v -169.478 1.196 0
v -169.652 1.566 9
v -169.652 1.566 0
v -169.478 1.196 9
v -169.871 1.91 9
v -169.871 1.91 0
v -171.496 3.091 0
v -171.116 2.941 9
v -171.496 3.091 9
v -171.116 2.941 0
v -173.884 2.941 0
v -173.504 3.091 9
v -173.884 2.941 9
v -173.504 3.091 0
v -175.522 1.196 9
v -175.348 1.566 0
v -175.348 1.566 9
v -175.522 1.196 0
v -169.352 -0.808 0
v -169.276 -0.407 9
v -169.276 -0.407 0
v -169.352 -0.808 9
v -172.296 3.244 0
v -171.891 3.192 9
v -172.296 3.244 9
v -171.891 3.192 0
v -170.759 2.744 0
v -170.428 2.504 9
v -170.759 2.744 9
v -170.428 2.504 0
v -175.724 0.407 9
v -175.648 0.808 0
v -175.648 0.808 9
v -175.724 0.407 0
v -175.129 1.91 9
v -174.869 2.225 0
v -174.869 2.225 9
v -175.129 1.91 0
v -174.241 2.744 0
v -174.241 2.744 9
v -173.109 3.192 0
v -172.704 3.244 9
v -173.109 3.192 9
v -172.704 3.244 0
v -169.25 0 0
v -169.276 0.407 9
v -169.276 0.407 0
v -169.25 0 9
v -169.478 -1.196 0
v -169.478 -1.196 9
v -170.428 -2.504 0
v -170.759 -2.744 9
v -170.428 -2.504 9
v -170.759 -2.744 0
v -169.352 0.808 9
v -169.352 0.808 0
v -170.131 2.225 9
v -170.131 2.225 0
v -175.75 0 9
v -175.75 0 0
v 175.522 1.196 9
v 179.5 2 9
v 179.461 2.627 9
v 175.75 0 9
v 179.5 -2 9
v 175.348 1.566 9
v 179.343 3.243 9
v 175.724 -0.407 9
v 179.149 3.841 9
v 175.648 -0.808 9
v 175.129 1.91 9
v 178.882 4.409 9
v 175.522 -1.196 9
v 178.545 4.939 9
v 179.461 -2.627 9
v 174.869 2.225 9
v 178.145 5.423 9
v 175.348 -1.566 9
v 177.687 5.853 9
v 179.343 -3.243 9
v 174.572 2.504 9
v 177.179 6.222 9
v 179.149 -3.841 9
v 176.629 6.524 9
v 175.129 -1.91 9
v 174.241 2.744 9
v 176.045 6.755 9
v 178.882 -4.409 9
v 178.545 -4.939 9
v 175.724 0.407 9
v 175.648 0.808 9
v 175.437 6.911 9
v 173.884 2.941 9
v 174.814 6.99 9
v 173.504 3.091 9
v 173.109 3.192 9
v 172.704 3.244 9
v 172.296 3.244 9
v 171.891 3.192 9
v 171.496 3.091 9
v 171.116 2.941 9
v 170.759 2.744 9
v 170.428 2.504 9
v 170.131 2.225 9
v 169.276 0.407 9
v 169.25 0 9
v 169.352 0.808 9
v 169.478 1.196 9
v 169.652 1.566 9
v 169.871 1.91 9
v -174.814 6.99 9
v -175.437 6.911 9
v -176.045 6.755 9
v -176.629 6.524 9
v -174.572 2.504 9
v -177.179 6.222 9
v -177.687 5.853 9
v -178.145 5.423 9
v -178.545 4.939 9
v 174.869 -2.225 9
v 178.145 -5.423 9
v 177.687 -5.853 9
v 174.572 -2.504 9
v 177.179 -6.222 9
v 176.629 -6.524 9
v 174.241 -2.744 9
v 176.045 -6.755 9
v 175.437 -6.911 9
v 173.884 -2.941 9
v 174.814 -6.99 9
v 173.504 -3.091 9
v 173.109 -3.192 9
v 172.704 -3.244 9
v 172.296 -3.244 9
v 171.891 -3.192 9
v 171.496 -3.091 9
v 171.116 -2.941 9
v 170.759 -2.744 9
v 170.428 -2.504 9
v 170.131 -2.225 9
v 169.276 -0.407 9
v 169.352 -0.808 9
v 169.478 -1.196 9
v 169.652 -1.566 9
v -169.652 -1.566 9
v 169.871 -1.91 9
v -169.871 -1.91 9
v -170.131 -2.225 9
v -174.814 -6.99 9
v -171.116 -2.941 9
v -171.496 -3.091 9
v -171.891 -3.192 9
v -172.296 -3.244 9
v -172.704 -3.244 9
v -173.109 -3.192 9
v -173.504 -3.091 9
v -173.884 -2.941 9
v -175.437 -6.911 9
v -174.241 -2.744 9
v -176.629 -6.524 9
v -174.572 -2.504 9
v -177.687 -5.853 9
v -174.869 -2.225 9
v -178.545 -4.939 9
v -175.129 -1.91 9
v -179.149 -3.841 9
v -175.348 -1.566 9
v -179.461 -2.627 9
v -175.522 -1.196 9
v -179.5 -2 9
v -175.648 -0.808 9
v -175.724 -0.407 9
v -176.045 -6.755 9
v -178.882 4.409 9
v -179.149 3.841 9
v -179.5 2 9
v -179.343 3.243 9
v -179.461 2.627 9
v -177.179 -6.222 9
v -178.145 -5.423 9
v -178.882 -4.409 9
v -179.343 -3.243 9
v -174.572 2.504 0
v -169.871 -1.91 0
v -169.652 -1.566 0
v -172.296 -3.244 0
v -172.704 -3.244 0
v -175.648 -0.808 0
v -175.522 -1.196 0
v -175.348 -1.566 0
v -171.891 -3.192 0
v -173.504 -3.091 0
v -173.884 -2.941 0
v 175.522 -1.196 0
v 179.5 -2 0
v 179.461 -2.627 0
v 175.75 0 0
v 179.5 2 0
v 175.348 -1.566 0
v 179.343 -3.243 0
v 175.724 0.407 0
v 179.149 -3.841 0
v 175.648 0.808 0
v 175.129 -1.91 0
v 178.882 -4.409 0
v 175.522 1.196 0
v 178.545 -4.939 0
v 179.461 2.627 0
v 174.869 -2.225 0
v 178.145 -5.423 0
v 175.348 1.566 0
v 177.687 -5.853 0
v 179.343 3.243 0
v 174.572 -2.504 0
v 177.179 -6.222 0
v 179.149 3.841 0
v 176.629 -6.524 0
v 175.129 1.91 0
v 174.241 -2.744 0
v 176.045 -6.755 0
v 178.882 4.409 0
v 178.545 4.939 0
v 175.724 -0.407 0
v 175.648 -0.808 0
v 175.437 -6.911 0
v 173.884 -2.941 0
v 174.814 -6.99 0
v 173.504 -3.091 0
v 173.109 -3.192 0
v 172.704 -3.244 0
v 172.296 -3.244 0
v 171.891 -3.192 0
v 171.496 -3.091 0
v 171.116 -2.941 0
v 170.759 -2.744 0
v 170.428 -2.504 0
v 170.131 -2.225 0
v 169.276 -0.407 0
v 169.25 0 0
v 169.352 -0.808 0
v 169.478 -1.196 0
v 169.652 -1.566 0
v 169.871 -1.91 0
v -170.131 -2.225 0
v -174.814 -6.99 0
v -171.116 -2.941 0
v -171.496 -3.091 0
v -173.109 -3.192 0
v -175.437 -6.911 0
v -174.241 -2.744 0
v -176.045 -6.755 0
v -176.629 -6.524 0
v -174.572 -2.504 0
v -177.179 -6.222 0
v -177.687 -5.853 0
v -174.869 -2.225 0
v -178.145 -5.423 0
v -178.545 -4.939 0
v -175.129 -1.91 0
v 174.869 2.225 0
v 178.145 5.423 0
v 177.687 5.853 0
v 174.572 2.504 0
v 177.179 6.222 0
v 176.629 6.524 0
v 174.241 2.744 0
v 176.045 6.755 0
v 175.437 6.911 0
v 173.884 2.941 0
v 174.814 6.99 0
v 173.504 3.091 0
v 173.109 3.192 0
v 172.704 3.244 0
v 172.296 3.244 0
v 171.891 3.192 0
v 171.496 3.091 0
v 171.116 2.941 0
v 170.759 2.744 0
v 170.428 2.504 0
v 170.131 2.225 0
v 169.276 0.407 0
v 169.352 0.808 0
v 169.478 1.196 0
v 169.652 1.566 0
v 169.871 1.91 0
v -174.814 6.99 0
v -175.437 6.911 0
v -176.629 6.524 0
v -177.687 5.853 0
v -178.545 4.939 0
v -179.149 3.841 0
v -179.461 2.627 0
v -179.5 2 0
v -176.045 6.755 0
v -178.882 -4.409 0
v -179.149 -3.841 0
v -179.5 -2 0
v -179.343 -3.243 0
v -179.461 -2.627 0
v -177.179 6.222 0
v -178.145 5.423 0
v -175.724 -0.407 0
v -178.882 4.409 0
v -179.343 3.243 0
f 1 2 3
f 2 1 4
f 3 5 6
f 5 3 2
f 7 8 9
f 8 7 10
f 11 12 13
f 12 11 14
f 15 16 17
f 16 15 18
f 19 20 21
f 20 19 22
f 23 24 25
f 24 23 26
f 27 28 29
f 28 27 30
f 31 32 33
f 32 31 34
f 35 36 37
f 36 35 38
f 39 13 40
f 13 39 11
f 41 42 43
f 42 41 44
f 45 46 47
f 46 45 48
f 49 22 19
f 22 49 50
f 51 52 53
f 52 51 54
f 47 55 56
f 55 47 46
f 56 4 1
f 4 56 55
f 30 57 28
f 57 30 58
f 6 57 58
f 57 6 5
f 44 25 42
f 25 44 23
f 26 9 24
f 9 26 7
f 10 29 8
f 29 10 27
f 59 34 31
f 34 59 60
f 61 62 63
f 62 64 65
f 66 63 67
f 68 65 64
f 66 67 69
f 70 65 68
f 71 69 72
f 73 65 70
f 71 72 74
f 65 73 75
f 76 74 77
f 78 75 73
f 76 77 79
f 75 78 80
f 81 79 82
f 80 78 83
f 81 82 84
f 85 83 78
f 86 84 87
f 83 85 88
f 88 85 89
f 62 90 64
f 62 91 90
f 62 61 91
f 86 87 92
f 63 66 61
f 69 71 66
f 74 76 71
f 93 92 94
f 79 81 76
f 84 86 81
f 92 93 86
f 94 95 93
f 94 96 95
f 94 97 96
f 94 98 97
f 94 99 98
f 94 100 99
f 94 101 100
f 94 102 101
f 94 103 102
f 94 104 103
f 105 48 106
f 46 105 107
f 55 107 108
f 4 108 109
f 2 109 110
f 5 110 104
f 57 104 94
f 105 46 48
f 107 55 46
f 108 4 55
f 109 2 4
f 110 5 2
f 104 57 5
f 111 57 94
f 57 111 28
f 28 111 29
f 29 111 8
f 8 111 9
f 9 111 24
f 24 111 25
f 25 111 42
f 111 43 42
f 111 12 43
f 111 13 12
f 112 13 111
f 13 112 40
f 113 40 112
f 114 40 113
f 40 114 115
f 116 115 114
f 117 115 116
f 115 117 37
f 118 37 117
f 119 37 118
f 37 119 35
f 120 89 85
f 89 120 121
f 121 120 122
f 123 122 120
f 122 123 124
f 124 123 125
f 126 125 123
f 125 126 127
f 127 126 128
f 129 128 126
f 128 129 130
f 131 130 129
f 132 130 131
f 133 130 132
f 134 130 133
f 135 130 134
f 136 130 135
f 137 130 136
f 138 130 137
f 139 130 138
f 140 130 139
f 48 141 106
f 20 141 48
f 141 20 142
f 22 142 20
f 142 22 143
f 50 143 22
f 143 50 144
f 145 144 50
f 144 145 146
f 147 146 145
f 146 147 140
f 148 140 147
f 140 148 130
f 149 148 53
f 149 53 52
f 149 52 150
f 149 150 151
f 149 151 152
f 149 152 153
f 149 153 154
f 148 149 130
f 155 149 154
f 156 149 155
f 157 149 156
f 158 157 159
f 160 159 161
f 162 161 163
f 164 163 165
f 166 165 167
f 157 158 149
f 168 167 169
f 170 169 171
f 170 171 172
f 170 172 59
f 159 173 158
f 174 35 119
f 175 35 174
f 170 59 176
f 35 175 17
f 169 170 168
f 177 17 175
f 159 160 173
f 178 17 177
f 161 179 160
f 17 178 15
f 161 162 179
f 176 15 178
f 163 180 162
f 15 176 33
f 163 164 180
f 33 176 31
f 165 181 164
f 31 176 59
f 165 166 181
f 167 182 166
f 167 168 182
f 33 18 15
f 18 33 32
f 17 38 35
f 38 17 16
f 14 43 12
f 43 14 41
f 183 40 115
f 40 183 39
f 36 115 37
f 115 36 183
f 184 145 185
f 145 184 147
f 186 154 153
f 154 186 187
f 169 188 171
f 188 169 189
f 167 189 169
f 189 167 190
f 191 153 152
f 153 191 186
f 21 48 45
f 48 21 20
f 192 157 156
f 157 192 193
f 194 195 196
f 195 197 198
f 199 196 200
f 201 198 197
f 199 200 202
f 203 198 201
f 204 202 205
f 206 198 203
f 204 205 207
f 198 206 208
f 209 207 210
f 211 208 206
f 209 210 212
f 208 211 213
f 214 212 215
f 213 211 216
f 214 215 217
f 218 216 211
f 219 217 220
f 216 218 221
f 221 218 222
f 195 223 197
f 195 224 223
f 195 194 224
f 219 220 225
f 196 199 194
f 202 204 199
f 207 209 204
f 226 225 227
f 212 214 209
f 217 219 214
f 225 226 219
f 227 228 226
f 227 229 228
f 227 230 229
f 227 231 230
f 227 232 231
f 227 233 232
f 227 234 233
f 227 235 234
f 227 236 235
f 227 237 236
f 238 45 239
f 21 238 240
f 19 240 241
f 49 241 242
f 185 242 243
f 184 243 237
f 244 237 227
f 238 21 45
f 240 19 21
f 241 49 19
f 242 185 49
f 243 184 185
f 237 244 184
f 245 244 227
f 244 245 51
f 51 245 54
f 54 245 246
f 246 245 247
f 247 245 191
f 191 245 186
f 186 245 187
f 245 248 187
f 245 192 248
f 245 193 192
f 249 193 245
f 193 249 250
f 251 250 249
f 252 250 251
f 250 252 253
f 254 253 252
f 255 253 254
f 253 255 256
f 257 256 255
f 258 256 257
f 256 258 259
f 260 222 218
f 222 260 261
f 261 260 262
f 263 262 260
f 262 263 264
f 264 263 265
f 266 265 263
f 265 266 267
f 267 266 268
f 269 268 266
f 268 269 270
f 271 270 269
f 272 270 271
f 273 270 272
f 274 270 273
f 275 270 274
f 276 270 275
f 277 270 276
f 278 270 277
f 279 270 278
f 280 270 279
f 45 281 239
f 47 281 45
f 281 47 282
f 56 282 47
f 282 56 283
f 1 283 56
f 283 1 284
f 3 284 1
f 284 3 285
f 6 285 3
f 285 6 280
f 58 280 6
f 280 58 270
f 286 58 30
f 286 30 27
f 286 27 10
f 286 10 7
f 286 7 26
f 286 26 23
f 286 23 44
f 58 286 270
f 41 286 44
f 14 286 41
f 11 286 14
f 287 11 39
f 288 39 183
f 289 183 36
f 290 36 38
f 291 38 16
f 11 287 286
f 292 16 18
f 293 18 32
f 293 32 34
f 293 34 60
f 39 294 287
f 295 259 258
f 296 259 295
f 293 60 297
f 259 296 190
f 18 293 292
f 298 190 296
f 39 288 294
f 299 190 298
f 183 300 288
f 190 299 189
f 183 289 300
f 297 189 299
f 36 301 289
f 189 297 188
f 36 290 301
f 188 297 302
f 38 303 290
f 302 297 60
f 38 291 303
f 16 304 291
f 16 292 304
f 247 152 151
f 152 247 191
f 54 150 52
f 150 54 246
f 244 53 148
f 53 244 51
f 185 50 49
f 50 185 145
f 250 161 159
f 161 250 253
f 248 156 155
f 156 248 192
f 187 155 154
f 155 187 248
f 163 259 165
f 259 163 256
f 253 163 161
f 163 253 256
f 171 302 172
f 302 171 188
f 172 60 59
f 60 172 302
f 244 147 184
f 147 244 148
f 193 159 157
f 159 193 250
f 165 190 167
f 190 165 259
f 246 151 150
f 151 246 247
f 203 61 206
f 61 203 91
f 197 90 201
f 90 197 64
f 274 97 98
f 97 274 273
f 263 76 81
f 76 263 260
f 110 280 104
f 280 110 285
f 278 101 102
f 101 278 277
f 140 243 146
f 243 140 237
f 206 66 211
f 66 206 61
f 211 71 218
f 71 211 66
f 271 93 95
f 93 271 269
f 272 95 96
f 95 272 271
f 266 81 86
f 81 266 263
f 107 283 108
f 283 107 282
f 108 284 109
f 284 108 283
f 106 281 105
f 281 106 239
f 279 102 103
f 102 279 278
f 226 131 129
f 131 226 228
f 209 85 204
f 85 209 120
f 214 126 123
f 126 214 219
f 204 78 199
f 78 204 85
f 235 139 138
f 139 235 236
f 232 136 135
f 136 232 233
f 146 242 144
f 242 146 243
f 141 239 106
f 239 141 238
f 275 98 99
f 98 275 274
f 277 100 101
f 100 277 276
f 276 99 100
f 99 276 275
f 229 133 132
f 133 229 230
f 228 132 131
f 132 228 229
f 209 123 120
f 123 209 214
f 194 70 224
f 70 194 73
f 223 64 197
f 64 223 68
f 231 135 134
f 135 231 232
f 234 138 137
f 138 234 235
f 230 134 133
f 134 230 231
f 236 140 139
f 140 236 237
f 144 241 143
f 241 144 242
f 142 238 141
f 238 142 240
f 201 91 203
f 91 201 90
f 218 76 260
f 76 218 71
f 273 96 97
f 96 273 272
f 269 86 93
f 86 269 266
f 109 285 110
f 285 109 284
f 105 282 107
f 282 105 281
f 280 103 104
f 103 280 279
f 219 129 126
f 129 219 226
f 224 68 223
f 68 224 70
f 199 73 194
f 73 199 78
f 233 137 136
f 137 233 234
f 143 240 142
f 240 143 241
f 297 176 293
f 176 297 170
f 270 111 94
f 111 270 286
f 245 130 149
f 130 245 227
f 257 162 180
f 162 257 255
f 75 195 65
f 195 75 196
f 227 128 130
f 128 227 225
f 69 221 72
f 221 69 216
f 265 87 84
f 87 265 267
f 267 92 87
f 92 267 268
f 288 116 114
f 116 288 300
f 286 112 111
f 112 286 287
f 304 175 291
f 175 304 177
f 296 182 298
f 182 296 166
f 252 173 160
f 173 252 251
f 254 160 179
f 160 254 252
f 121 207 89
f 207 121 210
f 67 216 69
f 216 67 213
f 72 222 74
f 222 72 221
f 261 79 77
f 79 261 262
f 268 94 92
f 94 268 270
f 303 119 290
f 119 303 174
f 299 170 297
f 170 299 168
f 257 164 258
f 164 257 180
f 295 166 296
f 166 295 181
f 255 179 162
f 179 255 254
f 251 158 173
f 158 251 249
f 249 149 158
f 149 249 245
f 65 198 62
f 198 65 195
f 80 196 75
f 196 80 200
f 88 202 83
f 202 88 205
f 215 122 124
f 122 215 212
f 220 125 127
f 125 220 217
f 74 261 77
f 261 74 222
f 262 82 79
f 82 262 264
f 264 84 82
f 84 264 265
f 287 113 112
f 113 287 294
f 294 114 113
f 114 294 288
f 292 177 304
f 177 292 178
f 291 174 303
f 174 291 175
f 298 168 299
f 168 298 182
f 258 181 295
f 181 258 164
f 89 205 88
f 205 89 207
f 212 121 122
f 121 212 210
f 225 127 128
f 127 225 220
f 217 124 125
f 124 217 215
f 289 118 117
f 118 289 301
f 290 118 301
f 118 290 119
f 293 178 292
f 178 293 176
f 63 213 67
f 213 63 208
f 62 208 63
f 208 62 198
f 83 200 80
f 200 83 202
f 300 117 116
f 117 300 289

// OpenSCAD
$fn = 50;


difference() {
	union() {
		hull() {
			translate(v = [-174.5000000000, 2.0000000000, 0]) {
				cylinder(h = 9, r = 5);
			}
			translate(v = [174.5000000000, 2.0000000000, 0]) {
				cylinder(h = 9, r = 5);
			}
			translate(v = [-174.5000000000, -2.0000000000, 0]) {
				cylinder(h = 9, r = 5);
			}
			translate(v = [174.5000000000, -2.0000000000, 0]) {
				cylinder(h = 9, r = 5);
			}
		}
	}
	union() {
		translate(v = [-172.5000000000, 0.0000000000, 0]) {
			cylinder(h = 9, r = 3.2500000000);
		}
		translate(v = [172.5000000000, 0.0000000000, 0]) {
			cylinder(h = 9, r = 3.2500000000);
		}
		translate(v = [-172.5000000000, 0.0000000000, 0]) {
			cylinder(h = 9, r = 1.8000000000);
		}
		translate(v = [172.5000000000, 0.0000000000, 0]) {
			cylinder(h = 9, r = 1.8000000000);
		}
		translate(v = [-172.5000000000, 0.0000000000, 0]) {
			cylinder(h = 9, r = 1.8000000000);
		}
		translate(v = [172.5000000000, 0.0000000000, 0]) {
			cylinder(h = 9, r = 1.8000000000);
		}
		translate(v = [-172.5000000000, 0.0000000000, 0]) {
			cylinder(h = 9, r = 1.8000000000);
		}
		translate(v = [172.5000000000, 0.0000000000, 0]) {
			cylinder(h = 9, r = 1.8000000000);
		}
	}
}
